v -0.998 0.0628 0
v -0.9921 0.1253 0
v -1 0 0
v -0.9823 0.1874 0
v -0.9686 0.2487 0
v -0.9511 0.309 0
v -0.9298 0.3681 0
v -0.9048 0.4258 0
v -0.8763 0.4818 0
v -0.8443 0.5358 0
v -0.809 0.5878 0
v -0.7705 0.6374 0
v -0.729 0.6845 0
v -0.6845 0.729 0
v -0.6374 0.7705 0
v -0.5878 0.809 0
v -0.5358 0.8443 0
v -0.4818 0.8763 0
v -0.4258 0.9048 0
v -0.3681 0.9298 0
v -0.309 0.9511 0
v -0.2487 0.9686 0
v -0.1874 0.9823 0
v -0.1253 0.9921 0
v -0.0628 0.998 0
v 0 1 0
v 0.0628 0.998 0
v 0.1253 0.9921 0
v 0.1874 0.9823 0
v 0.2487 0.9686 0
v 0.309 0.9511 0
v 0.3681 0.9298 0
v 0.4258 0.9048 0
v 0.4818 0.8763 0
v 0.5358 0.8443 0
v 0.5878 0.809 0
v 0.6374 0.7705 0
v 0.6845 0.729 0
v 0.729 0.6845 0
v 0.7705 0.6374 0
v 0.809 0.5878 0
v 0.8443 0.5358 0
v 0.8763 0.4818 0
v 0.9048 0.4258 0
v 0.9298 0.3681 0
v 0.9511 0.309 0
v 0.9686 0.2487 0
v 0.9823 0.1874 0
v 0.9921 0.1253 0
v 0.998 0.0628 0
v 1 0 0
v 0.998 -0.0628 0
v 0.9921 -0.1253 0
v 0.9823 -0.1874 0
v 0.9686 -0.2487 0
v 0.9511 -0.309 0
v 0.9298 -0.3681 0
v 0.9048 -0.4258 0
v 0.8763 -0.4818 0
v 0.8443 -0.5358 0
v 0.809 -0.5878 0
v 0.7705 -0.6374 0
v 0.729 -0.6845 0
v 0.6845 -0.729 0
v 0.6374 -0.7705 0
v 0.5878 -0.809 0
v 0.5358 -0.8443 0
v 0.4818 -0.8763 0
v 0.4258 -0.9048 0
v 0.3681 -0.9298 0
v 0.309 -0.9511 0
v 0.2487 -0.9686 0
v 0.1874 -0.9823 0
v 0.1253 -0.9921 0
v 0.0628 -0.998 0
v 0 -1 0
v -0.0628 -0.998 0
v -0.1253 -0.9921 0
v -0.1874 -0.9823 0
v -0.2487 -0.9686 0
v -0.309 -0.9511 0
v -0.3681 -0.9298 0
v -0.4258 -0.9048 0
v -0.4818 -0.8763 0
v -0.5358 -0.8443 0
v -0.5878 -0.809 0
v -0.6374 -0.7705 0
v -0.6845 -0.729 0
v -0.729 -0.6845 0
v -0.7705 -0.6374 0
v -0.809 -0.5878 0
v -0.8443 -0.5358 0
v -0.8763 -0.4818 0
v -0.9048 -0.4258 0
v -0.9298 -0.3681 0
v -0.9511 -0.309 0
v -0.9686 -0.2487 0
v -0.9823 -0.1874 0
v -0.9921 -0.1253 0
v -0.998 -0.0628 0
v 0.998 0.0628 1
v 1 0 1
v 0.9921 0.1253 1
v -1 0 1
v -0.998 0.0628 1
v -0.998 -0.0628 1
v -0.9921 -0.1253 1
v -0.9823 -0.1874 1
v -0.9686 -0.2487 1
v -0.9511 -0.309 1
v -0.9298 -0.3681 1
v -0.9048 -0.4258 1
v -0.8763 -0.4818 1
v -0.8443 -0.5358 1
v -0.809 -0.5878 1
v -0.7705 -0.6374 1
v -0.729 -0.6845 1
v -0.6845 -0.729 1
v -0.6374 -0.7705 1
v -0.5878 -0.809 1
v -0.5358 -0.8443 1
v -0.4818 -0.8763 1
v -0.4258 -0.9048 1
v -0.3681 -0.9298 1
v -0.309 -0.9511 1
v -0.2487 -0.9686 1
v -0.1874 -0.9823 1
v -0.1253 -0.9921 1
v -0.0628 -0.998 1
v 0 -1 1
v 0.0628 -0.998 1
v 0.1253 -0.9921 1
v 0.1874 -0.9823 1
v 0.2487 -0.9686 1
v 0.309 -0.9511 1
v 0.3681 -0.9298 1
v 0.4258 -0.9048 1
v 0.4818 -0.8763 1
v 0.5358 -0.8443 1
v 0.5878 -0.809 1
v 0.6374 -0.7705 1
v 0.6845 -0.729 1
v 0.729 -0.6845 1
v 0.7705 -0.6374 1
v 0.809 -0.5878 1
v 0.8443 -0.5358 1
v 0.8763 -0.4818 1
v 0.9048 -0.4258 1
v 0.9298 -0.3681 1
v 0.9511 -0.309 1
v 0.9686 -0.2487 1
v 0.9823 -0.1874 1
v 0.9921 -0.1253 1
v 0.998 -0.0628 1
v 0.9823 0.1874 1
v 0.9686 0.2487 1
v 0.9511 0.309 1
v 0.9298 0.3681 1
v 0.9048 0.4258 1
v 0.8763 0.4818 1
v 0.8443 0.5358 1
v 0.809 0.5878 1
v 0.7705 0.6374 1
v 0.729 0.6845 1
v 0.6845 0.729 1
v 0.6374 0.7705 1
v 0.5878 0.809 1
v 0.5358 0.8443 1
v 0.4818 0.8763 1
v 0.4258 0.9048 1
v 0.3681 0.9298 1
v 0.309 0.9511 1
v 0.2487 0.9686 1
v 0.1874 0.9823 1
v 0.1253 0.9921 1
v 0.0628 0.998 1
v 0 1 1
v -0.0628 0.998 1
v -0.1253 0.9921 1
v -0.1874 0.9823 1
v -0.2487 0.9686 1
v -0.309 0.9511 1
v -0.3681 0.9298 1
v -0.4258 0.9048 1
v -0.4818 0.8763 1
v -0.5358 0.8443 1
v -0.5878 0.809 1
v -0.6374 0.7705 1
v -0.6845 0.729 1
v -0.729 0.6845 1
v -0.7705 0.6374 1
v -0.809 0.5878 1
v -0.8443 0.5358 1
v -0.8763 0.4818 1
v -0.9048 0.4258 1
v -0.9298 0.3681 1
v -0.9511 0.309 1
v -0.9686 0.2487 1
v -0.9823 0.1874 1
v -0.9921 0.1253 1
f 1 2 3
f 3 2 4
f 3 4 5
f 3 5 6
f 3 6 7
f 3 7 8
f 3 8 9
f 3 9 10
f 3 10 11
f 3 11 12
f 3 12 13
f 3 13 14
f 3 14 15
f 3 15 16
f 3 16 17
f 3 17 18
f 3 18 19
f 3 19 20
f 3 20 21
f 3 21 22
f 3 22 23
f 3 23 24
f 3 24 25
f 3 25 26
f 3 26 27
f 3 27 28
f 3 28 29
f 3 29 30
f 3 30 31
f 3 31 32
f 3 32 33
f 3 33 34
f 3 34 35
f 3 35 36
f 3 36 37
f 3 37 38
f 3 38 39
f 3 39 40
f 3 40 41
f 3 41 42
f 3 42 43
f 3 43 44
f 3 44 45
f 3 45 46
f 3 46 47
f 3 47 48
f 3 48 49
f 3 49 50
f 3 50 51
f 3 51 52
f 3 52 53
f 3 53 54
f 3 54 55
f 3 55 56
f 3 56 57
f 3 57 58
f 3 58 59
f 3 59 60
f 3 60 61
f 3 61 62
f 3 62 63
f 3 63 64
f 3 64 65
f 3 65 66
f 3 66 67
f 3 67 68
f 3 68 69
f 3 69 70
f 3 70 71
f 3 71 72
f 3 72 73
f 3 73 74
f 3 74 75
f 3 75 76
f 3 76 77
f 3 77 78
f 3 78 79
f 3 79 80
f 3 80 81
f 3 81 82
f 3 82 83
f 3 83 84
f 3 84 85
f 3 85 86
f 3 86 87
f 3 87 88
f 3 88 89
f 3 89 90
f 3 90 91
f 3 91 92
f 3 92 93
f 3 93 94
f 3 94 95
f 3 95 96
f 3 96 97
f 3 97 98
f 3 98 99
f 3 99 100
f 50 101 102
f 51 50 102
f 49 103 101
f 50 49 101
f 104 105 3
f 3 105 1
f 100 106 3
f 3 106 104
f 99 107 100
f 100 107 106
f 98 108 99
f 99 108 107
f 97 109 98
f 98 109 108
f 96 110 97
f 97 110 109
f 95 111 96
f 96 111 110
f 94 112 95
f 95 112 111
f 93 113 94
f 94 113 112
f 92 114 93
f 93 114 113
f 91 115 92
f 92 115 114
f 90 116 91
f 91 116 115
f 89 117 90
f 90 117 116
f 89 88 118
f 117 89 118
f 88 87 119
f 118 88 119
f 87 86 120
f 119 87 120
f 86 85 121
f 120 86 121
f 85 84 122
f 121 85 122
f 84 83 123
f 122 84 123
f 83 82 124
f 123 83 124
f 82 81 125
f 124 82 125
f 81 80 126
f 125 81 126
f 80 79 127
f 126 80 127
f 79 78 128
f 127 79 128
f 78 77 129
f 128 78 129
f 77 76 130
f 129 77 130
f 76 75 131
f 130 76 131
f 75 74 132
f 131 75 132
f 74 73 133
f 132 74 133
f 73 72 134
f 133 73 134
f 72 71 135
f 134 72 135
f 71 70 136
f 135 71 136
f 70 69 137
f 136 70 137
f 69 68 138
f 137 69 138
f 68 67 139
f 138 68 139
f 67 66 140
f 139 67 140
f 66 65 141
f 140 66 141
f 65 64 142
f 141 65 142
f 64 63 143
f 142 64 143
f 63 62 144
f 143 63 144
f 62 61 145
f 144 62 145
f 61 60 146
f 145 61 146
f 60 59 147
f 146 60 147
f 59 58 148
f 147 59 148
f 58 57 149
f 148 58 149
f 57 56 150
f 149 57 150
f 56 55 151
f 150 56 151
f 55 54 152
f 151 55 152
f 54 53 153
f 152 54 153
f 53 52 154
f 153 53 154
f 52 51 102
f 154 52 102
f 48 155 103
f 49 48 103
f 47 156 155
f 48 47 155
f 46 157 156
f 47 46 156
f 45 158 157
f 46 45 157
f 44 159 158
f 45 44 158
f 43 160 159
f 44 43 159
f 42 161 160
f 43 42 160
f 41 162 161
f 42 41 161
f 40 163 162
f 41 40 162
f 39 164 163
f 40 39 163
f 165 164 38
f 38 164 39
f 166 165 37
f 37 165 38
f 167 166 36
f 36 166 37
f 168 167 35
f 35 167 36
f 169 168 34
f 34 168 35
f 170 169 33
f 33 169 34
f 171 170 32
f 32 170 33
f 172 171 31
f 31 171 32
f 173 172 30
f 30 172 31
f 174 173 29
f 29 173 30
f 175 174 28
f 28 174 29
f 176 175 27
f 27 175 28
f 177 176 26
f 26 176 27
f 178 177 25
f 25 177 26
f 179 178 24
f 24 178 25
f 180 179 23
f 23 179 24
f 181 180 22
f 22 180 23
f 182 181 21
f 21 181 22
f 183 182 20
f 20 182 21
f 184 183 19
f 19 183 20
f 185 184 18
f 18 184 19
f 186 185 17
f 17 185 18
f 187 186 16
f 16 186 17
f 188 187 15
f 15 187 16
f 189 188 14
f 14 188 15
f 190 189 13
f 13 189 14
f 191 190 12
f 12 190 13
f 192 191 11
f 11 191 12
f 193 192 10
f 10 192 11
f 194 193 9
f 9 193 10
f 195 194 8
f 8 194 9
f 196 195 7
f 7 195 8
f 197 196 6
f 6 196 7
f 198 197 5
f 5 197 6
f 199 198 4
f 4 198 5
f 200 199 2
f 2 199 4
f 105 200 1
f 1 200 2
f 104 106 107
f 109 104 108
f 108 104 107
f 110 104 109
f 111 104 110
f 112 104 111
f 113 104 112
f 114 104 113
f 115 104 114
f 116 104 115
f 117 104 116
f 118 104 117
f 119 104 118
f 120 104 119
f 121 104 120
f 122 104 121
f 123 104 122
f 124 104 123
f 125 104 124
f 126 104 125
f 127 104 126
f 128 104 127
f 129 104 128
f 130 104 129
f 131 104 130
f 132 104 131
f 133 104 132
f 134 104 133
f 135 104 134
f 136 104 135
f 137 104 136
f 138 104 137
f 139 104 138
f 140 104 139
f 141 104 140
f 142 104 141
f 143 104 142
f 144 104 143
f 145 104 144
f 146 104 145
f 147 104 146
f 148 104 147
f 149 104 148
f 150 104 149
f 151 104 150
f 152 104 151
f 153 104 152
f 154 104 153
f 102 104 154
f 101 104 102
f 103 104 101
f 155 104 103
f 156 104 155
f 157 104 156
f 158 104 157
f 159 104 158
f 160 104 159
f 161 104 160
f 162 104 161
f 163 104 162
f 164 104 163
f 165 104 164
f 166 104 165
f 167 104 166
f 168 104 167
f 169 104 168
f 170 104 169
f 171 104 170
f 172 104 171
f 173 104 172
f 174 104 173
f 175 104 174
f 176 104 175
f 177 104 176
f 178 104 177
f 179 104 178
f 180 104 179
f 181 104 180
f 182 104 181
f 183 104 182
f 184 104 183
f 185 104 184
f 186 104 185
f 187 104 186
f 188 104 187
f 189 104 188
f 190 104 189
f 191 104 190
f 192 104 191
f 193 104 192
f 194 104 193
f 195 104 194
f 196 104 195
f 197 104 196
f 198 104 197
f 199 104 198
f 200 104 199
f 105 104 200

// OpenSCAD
/*
 * OpenSCAD Workshop Examples
 * Copyright (c) 2013 Anar Software LLC. < http://anars.com >
 *
 * This program is free software: you can redistribute it and/or modify it under
 * the terms of the GNU General Public License as published by the Free Software
 * Foundation, either version 3 of the License, or (at your option) any later
 * version.
 *
 * This program is distributed in the hope that it will be useful, but WITHOUT
 * ANY WARRANTY; without even the implied warranty of MERCHANTABILITY or FITNESS
 * FOR A PARTICULAR PURPOSE. See the GNU General Public License for more details.
 *
 * You should have received a copy of the GNU General Public License along with
 * this program. If not, see < http://www.gnu.org/licenses/ >
 *
 */
/*

Creates 1 unit radius, 1 unit height cylinder.

*/

$fn = 100;

cylinder();
